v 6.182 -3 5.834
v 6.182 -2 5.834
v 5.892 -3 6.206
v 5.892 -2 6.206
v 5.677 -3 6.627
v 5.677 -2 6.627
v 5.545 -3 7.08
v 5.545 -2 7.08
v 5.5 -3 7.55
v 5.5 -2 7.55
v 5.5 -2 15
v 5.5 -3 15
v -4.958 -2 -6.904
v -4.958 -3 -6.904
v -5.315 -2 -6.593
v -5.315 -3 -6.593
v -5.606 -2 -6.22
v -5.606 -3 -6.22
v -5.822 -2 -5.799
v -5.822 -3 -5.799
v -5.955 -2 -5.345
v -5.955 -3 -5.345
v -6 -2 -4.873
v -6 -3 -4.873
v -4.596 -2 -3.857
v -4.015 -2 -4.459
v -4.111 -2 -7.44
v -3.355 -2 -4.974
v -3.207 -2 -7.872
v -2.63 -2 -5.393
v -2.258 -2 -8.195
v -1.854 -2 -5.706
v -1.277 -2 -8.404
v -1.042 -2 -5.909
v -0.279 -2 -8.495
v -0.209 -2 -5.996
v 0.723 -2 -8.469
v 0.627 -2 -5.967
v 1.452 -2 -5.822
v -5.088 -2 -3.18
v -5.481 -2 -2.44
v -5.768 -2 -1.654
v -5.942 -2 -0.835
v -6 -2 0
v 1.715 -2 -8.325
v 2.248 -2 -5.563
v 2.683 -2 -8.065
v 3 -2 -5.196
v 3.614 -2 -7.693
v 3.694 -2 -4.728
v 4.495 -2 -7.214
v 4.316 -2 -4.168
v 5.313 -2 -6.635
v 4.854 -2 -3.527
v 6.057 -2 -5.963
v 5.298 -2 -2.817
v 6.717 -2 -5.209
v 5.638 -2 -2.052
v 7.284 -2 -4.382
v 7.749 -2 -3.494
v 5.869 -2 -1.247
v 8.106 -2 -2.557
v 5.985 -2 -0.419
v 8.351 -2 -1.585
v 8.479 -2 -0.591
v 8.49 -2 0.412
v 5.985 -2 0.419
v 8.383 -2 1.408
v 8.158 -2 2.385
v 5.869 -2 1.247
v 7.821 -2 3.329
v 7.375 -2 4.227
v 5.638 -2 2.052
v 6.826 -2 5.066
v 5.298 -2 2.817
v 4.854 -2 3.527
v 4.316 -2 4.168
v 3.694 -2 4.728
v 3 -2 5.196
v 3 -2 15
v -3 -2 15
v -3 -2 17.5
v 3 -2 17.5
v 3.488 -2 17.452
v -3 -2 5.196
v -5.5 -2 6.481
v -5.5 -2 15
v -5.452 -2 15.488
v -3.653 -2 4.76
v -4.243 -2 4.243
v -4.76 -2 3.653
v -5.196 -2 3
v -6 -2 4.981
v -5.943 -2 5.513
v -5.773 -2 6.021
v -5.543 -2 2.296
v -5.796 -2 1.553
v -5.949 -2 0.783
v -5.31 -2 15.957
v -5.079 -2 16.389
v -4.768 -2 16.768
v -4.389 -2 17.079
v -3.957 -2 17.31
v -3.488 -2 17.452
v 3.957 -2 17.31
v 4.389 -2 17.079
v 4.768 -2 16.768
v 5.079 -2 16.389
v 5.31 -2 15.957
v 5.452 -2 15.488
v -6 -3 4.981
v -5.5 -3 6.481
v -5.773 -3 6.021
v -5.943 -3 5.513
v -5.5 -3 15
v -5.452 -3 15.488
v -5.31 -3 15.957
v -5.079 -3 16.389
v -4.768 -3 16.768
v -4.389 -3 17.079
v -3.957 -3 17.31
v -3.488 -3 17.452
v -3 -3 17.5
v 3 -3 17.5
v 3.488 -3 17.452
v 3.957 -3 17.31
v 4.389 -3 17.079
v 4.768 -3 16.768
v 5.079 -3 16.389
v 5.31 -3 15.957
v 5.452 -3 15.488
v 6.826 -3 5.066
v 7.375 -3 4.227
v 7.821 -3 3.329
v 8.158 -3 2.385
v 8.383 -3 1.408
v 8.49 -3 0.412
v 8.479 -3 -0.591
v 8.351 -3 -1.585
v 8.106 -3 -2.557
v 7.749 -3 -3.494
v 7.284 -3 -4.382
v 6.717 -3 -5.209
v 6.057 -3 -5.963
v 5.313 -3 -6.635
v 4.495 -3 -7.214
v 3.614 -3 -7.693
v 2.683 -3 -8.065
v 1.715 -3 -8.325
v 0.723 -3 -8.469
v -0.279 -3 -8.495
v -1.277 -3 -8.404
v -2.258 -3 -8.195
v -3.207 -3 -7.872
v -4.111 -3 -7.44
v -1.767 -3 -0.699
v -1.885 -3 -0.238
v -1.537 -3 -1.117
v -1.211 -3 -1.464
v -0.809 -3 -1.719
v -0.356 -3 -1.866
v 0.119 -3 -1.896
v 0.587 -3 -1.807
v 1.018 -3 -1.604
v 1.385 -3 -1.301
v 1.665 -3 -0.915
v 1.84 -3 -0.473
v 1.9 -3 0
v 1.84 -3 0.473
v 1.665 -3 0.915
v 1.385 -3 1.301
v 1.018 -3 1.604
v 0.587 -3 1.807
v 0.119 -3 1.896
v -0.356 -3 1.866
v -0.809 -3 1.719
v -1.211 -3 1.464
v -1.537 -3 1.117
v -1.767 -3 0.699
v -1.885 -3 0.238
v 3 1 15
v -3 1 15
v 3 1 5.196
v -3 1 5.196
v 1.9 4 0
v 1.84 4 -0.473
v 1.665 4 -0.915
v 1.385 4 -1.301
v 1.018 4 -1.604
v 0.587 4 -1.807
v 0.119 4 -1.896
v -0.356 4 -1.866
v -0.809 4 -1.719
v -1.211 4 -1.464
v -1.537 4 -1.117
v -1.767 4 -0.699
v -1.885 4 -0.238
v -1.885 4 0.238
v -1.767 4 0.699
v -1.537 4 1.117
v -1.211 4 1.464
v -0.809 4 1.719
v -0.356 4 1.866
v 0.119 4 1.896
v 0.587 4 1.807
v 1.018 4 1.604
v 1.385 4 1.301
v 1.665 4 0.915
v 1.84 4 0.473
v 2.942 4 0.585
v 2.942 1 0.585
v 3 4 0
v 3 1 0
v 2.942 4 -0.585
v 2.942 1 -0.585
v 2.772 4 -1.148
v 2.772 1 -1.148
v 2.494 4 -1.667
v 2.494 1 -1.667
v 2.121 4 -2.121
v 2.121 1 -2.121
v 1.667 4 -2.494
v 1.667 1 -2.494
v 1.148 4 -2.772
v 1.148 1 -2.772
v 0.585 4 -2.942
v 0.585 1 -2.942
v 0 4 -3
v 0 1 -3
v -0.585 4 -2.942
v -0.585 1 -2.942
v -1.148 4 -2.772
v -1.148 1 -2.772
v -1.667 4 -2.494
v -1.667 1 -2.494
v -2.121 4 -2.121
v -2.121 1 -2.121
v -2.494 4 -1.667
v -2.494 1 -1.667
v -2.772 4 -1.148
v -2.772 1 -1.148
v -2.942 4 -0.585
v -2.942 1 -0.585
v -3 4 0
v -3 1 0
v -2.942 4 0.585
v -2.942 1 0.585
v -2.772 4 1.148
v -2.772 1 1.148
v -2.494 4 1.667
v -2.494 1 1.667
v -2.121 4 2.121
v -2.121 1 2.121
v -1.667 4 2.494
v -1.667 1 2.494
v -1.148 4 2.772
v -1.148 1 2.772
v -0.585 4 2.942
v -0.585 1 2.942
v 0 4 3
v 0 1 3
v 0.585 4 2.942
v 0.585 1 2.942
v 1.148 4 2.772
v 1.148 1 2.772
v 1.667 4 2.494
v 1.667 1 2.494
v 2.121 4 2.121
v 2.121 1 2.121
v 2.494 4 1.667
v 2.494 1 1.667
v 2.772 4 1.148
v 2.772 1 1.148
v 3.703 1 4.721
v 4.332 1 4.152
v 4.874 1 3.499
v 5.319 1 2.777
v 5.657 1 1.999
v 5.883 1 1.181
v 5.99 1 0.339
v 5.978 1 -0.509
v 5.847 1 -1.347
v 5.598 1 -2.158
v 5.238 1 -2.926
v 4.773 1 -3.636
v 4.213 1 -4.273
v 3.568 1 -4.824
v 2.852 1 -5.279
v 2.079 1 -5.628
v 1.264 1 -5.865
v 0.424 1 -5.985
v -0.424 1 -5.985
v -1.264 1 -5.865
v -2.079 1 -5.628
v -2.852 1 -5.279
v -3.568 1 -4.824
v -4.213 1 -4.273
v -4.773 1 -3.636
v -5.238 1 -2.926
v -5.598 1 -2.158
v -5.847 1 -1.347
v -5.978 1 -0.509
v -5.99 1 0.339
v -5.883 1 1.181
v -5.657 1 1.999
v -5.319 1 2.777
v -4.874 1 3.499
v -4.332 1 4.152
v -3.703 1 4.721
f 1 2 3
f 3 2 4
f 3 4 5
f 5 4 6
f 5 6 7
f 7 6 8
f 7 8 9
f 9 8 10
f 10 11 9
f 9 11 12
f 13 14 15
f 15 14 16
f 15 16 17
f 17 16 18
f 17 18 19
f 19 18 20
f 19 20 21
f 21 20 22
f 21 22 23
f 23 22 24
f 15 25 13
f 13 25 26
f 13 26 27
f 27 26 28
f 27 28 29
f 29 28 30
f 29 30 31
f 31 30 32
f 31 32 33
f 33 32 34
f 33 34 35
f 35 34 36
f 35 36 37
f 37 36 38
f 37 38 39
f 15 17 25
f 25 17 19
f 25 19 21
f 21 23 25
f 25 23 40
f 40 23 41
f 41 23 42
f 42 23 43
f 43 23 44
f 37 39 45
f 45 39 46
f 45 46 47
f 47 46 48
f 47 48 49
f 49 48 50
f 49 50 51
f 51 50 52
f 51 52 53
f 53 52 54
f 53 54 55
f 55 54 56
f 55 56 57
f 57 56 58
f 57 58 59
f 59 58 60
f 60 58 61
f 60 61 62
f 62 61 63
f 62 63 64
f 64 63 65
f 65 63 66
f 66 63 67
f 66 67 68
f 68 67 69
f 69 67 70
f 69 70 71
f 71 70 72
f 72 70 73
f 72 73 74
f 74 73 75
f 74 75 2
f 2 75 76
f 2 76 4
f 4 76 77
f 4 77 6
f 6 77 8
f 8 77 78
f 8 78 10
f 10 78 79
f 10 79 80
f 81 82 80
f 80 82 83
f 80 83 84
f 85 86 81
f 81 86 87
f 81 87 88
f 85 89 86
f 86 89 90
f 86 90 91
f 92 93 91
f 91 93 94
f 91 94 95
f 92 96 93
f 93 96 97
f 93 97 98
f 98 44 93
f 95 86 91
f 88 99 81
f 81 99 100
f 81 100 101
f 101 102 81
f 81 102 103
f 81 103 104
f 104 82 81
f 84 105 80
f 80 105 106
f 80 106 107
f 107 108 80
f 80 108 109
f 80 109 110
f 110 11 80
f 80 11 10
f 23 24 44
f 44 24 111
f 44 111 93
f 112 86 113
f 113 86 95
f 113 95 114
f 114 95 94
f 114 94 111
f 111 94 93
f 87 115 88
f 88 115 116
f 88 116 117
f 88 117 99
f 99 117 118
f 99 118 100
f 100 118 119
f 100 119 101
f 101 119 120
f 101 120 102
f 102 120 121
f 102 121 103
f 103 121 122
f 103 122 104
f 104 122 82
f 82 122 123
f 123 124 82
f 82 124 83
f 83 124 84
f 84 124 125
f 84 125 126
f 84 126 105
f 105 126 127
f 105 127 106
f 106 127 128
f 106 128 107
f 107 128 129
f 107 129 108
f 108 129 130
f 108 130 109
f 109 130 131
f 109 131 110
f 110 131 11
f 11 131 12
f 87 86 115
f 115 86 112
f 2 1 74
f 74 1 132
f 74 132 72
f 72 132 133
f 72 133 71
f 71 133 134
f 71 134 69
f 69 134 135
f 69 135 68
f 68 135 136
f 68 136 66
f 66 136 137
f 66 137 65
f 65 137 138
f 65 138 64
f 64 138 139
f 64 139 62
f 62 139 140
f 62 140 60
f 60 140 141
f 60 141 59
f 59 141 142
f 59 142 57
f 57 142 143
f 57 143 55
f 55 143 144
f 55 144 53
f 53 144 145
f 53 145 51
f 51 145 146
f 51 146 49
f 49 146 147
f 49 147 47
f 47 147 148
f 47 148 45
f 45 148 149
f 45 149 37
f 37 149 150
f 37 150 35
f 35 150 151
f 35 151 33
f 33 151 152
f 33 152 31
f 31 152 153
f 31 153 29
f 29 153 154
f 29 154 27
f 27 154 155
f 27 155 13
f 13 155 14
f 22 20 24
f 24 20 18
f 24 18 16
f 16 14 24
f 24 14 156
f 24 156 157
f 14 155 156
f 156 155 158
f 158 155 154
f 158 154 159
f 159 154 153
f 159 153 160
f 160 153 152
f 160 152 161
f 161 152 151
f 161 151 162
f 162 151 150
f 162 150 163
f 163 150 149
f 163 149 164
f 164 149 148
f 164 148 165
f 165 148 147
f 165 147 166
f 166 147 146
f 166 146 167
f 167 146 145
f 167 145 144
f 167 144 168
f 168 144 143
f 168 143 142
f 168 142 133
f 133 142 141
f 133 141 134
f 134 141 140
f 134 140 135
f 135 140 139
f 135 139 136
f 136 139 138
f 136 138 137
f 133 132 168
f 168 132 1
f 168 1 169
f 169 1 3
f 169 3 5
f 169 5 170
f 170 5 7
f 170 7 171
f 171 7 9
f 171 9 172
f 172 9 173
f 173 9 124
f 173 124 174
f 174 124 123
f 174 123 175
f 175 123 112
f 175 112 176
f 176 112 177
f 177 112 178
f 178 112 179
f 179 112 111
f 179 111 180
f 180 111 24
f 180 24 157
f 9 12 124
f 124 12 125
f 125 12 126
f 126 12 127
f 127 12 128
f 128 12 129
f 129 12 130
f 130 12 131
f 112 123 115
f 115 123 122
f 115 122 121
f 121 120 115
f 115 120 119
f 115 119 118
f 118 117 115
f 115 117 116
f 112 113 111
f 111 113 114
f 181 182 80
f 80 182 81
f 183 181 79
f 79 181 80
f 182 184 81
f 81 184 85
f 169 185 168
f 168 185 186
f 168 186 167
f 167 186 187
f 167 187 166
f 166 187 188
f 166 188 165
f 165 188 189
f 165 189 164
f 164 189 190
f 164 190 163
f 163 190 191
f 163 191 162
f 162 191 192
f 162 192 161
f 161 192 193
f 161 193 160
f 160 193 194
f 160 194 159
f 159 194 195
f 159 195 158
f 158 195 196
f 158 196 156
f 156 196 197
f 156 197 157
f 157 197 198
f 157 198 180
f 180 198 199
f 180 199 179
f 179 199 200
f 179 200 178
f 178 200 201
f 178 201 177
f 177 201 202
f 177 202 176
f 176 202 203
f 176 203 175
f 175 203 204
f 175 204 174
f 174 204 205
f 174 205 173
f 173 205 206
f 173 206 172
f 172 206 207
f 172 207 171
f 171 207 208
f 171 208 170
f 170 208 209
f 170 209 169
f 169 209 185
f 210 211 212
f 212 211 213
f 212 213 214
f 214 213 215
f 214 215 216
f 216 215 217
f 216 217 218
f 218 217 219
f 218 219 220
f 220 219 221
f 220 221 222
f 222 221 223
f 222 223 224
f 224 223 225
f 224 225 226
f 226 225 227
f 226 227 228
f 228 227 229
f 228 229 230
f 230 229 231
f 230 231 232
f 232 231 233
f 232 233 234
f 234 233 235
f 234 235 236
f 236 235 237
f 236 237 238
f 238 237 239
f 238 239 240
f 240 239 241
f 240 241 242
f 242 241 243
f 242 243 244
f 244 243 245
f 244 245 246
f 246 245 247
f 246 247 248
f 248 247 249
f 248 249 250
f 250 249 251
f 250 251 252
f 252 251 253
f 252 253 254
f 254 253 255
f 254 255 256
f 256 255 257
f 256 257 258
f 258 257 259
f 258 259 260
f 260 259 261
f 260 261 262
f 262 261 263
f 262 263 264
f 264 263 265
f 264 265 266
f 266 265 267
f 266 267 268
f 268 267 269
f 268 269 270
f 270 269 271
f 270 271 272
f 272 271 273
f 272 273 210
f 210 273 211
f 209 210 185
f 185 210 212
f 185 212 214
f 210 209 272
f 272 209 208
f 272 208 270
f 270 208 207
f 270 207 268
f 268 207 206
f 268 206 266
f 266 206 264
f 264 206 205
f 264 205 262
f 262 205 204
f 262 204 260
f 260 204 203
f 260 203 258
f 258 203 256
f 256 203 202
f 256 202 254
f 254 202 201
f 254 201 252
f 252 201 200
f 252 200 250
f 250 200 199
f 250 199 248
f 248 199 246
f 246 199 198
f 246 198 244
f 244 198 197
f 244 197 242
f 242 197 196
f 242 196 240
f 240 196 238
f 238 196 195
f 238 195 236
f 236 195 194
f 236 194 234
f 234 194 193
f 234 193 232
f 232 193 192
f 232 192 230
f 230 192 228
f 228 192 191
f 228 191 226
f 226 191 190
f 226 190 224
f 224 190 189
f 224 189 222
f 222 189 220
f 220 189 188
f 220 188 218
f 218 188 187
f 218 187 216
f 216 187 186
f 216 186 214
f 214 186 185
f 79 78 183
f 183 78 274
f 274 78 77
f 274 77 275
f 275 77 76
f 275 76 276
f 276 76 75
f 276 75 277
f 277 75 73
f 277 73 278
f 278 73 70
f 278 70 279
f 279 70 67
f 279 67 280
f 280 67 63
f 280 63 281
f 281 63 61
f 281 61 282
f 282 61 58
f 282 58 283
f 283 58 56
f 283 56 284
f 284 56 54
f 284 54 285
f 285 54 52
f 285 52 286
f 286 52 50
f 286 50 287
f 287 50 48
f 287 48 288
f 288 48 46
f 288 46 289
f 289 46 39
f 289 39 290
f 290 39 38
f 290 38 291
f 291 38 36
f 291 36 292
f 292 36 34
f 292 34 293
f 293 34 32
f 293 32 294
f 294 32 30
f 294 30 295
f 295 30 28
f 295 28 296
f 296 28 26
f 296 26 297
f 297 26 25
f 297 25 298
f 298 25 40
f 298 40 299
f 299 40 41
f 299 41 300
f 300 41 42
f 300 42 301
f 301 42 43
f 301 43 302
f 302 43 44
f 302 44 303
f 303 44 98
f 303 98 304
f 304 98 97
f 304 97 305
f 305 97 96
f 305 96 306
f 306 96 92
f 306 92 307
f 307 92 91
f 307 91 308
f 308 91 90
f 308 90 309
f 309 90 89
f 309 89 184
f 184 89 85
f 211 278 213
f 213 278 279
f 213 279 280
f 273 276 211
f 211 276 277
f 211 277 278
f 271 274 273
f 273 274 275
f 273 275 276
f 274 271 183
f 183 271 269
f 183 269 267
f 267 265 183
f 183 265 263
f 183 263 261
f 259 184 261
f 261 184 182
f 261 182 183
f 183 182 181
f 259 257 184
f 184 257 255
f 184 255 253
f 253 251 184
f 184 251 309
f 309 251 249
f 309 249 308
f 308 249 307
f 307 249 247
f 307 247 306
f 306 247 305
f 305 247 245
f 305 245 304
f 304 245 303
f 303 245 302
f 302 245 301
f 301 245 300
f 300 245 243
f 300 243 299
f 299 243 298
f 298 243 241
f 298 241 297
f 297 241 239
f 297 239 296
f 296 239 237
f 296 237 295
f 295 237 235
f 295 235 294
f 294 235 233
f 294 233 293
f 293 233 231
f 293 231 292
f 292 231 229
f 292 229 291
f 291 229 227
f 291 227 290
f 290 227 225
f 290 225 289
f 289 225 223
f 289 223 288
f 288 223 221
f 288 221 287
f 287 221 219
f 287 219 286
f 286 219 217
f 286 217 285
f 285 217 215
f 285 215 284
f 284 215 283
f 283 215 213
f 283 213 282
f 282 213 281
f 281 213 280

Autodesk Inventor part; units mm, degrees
ref_plane "YZ Plane" through (0, 0, 0) normal (1, 0, 0) x (0, 1, 0)
ref_plane "XZ Plane" through (0, 0, 0) normal (0, 1, 0) x (-1, 0, 0)
ref_plane "XY Plane" through (0, 0, 0) normal (0, 0, 1) x (1, 0, 0)
sketch "スケッチ1" plane through (0, 0, 0) normal (0, 1, 0) x (-1, 0, 0)
  circle A0 centre (0, 0) radius 6
  dimension "d0" = 12
extrude "押し出し1" add sketch "スケッチ1" along normal blind 1
sketch "スケッチ2" plane through (0, 1, 0) normal (0, 1, 0) x (1, 0, 0)
  circle A0 centre (0, 0) radius 3
  dimension "d3" = 6
extrude "押し出し2" add sketch "スケッチ2" along normal blind 3
sketch "スケッチ3" plane through (0, 4, 0) normal (0, 1, 0) x (1, 0, 0)
  circle A0 centre (0, 0) radius 1.9
  dimension "d6" = 3.8
extrude "押し出し3" cut sketch "スケッチ3" against normal through all
sketch "スケッチ5" plane through (0, 1, 0) normal (0, 1, 0) x (1, 0, 0)
  circle A0 centre (0, 0) radius 3 projected
  circle A1 centre (0, 0) radius 6 projected
  line L0 (-3, 0) -> (3, 0)
  line L1 (3, 0) -> (3, -15)
  line L2 (3, -15) -> (-3, -15)
  line L3 (-3, -15) -> (-3, 0)
  circle A2 centre (0, 0) radius 3 projected
  circle A3 centre (0, 0) radius 1.9 projected
  point P0 (3, -5.1962)
  point P1 (-3, -5.1962)
  dimension "d9" = 15
extrude "押し出し4" add sketch "スケッチ5" against normal blind 3 contours L0 A3 A0 | L1 A1 L3 A0 | A0 L0 A3 | A0 L3 A1 L1 | L1 L2 L3 A1
sketch "スケッチ6" plane through (0, -2, 0) normal (0, -1, 0) x (1, 0, 0)
  line L0 (5.5, 17.5) -> (-5.5, 17.5)
  line L1 (-5.5, 17.5) -> (-5.5, 0)
  line L2 (-5.5, 0) -> (5.5, 0)
  line L3 (5.5, 0) -> (5.5, 17.5)
  line L4 (3, 5.1962) -> (3, 15) projected
  line L5 (-3, 15) -> (-3, 5.1962) projected
  line L6 (3, 15) -> (-3, 15) projected
  arc A0 (-3, 5.1962) -> (3, 5.1962) centre (0, 0) ccw projected
  circle A1 centre (0, 0) radius 8.5
  circle A2 centre (0, 0) radius 1.9 projected
  line L7 (-6, -6.0208) -> (-6, 6.0208)
  point P0 (-5.5, 6.4807)
  point P1 (5.5, 6.4807)
  dimension "d12" = 2.5
  dimension "d13" = 2.5
  dimension "d14" = 2.5
  dimension "d15" = 2.5
extrude "押し出し5" add sketch "スケッチ6" along normal blind 1 contours L3 A1 L4 L6 L5 L1 L0 | A1 L7 A0 L3 | L3 A0 L4 A1 | A1 L5 A0 L1 | L1 A0 L7 A1 | A0 L1 L2 A2 L3 | L3 L2 A2 L1 A0 L5 A1 L4 | A1 L5 L6 L4
fillet "フィレット1" radius 2.5 5 edges at (5.5, -2.5, 17.5) (-5.5, -2.5, 17.5) (-6, -2.5, 6.0208) (-6, -2.5, -6.0208) (5.5, -2.5, 6.4807)
properties part number "ベルト_bush_皿側"
